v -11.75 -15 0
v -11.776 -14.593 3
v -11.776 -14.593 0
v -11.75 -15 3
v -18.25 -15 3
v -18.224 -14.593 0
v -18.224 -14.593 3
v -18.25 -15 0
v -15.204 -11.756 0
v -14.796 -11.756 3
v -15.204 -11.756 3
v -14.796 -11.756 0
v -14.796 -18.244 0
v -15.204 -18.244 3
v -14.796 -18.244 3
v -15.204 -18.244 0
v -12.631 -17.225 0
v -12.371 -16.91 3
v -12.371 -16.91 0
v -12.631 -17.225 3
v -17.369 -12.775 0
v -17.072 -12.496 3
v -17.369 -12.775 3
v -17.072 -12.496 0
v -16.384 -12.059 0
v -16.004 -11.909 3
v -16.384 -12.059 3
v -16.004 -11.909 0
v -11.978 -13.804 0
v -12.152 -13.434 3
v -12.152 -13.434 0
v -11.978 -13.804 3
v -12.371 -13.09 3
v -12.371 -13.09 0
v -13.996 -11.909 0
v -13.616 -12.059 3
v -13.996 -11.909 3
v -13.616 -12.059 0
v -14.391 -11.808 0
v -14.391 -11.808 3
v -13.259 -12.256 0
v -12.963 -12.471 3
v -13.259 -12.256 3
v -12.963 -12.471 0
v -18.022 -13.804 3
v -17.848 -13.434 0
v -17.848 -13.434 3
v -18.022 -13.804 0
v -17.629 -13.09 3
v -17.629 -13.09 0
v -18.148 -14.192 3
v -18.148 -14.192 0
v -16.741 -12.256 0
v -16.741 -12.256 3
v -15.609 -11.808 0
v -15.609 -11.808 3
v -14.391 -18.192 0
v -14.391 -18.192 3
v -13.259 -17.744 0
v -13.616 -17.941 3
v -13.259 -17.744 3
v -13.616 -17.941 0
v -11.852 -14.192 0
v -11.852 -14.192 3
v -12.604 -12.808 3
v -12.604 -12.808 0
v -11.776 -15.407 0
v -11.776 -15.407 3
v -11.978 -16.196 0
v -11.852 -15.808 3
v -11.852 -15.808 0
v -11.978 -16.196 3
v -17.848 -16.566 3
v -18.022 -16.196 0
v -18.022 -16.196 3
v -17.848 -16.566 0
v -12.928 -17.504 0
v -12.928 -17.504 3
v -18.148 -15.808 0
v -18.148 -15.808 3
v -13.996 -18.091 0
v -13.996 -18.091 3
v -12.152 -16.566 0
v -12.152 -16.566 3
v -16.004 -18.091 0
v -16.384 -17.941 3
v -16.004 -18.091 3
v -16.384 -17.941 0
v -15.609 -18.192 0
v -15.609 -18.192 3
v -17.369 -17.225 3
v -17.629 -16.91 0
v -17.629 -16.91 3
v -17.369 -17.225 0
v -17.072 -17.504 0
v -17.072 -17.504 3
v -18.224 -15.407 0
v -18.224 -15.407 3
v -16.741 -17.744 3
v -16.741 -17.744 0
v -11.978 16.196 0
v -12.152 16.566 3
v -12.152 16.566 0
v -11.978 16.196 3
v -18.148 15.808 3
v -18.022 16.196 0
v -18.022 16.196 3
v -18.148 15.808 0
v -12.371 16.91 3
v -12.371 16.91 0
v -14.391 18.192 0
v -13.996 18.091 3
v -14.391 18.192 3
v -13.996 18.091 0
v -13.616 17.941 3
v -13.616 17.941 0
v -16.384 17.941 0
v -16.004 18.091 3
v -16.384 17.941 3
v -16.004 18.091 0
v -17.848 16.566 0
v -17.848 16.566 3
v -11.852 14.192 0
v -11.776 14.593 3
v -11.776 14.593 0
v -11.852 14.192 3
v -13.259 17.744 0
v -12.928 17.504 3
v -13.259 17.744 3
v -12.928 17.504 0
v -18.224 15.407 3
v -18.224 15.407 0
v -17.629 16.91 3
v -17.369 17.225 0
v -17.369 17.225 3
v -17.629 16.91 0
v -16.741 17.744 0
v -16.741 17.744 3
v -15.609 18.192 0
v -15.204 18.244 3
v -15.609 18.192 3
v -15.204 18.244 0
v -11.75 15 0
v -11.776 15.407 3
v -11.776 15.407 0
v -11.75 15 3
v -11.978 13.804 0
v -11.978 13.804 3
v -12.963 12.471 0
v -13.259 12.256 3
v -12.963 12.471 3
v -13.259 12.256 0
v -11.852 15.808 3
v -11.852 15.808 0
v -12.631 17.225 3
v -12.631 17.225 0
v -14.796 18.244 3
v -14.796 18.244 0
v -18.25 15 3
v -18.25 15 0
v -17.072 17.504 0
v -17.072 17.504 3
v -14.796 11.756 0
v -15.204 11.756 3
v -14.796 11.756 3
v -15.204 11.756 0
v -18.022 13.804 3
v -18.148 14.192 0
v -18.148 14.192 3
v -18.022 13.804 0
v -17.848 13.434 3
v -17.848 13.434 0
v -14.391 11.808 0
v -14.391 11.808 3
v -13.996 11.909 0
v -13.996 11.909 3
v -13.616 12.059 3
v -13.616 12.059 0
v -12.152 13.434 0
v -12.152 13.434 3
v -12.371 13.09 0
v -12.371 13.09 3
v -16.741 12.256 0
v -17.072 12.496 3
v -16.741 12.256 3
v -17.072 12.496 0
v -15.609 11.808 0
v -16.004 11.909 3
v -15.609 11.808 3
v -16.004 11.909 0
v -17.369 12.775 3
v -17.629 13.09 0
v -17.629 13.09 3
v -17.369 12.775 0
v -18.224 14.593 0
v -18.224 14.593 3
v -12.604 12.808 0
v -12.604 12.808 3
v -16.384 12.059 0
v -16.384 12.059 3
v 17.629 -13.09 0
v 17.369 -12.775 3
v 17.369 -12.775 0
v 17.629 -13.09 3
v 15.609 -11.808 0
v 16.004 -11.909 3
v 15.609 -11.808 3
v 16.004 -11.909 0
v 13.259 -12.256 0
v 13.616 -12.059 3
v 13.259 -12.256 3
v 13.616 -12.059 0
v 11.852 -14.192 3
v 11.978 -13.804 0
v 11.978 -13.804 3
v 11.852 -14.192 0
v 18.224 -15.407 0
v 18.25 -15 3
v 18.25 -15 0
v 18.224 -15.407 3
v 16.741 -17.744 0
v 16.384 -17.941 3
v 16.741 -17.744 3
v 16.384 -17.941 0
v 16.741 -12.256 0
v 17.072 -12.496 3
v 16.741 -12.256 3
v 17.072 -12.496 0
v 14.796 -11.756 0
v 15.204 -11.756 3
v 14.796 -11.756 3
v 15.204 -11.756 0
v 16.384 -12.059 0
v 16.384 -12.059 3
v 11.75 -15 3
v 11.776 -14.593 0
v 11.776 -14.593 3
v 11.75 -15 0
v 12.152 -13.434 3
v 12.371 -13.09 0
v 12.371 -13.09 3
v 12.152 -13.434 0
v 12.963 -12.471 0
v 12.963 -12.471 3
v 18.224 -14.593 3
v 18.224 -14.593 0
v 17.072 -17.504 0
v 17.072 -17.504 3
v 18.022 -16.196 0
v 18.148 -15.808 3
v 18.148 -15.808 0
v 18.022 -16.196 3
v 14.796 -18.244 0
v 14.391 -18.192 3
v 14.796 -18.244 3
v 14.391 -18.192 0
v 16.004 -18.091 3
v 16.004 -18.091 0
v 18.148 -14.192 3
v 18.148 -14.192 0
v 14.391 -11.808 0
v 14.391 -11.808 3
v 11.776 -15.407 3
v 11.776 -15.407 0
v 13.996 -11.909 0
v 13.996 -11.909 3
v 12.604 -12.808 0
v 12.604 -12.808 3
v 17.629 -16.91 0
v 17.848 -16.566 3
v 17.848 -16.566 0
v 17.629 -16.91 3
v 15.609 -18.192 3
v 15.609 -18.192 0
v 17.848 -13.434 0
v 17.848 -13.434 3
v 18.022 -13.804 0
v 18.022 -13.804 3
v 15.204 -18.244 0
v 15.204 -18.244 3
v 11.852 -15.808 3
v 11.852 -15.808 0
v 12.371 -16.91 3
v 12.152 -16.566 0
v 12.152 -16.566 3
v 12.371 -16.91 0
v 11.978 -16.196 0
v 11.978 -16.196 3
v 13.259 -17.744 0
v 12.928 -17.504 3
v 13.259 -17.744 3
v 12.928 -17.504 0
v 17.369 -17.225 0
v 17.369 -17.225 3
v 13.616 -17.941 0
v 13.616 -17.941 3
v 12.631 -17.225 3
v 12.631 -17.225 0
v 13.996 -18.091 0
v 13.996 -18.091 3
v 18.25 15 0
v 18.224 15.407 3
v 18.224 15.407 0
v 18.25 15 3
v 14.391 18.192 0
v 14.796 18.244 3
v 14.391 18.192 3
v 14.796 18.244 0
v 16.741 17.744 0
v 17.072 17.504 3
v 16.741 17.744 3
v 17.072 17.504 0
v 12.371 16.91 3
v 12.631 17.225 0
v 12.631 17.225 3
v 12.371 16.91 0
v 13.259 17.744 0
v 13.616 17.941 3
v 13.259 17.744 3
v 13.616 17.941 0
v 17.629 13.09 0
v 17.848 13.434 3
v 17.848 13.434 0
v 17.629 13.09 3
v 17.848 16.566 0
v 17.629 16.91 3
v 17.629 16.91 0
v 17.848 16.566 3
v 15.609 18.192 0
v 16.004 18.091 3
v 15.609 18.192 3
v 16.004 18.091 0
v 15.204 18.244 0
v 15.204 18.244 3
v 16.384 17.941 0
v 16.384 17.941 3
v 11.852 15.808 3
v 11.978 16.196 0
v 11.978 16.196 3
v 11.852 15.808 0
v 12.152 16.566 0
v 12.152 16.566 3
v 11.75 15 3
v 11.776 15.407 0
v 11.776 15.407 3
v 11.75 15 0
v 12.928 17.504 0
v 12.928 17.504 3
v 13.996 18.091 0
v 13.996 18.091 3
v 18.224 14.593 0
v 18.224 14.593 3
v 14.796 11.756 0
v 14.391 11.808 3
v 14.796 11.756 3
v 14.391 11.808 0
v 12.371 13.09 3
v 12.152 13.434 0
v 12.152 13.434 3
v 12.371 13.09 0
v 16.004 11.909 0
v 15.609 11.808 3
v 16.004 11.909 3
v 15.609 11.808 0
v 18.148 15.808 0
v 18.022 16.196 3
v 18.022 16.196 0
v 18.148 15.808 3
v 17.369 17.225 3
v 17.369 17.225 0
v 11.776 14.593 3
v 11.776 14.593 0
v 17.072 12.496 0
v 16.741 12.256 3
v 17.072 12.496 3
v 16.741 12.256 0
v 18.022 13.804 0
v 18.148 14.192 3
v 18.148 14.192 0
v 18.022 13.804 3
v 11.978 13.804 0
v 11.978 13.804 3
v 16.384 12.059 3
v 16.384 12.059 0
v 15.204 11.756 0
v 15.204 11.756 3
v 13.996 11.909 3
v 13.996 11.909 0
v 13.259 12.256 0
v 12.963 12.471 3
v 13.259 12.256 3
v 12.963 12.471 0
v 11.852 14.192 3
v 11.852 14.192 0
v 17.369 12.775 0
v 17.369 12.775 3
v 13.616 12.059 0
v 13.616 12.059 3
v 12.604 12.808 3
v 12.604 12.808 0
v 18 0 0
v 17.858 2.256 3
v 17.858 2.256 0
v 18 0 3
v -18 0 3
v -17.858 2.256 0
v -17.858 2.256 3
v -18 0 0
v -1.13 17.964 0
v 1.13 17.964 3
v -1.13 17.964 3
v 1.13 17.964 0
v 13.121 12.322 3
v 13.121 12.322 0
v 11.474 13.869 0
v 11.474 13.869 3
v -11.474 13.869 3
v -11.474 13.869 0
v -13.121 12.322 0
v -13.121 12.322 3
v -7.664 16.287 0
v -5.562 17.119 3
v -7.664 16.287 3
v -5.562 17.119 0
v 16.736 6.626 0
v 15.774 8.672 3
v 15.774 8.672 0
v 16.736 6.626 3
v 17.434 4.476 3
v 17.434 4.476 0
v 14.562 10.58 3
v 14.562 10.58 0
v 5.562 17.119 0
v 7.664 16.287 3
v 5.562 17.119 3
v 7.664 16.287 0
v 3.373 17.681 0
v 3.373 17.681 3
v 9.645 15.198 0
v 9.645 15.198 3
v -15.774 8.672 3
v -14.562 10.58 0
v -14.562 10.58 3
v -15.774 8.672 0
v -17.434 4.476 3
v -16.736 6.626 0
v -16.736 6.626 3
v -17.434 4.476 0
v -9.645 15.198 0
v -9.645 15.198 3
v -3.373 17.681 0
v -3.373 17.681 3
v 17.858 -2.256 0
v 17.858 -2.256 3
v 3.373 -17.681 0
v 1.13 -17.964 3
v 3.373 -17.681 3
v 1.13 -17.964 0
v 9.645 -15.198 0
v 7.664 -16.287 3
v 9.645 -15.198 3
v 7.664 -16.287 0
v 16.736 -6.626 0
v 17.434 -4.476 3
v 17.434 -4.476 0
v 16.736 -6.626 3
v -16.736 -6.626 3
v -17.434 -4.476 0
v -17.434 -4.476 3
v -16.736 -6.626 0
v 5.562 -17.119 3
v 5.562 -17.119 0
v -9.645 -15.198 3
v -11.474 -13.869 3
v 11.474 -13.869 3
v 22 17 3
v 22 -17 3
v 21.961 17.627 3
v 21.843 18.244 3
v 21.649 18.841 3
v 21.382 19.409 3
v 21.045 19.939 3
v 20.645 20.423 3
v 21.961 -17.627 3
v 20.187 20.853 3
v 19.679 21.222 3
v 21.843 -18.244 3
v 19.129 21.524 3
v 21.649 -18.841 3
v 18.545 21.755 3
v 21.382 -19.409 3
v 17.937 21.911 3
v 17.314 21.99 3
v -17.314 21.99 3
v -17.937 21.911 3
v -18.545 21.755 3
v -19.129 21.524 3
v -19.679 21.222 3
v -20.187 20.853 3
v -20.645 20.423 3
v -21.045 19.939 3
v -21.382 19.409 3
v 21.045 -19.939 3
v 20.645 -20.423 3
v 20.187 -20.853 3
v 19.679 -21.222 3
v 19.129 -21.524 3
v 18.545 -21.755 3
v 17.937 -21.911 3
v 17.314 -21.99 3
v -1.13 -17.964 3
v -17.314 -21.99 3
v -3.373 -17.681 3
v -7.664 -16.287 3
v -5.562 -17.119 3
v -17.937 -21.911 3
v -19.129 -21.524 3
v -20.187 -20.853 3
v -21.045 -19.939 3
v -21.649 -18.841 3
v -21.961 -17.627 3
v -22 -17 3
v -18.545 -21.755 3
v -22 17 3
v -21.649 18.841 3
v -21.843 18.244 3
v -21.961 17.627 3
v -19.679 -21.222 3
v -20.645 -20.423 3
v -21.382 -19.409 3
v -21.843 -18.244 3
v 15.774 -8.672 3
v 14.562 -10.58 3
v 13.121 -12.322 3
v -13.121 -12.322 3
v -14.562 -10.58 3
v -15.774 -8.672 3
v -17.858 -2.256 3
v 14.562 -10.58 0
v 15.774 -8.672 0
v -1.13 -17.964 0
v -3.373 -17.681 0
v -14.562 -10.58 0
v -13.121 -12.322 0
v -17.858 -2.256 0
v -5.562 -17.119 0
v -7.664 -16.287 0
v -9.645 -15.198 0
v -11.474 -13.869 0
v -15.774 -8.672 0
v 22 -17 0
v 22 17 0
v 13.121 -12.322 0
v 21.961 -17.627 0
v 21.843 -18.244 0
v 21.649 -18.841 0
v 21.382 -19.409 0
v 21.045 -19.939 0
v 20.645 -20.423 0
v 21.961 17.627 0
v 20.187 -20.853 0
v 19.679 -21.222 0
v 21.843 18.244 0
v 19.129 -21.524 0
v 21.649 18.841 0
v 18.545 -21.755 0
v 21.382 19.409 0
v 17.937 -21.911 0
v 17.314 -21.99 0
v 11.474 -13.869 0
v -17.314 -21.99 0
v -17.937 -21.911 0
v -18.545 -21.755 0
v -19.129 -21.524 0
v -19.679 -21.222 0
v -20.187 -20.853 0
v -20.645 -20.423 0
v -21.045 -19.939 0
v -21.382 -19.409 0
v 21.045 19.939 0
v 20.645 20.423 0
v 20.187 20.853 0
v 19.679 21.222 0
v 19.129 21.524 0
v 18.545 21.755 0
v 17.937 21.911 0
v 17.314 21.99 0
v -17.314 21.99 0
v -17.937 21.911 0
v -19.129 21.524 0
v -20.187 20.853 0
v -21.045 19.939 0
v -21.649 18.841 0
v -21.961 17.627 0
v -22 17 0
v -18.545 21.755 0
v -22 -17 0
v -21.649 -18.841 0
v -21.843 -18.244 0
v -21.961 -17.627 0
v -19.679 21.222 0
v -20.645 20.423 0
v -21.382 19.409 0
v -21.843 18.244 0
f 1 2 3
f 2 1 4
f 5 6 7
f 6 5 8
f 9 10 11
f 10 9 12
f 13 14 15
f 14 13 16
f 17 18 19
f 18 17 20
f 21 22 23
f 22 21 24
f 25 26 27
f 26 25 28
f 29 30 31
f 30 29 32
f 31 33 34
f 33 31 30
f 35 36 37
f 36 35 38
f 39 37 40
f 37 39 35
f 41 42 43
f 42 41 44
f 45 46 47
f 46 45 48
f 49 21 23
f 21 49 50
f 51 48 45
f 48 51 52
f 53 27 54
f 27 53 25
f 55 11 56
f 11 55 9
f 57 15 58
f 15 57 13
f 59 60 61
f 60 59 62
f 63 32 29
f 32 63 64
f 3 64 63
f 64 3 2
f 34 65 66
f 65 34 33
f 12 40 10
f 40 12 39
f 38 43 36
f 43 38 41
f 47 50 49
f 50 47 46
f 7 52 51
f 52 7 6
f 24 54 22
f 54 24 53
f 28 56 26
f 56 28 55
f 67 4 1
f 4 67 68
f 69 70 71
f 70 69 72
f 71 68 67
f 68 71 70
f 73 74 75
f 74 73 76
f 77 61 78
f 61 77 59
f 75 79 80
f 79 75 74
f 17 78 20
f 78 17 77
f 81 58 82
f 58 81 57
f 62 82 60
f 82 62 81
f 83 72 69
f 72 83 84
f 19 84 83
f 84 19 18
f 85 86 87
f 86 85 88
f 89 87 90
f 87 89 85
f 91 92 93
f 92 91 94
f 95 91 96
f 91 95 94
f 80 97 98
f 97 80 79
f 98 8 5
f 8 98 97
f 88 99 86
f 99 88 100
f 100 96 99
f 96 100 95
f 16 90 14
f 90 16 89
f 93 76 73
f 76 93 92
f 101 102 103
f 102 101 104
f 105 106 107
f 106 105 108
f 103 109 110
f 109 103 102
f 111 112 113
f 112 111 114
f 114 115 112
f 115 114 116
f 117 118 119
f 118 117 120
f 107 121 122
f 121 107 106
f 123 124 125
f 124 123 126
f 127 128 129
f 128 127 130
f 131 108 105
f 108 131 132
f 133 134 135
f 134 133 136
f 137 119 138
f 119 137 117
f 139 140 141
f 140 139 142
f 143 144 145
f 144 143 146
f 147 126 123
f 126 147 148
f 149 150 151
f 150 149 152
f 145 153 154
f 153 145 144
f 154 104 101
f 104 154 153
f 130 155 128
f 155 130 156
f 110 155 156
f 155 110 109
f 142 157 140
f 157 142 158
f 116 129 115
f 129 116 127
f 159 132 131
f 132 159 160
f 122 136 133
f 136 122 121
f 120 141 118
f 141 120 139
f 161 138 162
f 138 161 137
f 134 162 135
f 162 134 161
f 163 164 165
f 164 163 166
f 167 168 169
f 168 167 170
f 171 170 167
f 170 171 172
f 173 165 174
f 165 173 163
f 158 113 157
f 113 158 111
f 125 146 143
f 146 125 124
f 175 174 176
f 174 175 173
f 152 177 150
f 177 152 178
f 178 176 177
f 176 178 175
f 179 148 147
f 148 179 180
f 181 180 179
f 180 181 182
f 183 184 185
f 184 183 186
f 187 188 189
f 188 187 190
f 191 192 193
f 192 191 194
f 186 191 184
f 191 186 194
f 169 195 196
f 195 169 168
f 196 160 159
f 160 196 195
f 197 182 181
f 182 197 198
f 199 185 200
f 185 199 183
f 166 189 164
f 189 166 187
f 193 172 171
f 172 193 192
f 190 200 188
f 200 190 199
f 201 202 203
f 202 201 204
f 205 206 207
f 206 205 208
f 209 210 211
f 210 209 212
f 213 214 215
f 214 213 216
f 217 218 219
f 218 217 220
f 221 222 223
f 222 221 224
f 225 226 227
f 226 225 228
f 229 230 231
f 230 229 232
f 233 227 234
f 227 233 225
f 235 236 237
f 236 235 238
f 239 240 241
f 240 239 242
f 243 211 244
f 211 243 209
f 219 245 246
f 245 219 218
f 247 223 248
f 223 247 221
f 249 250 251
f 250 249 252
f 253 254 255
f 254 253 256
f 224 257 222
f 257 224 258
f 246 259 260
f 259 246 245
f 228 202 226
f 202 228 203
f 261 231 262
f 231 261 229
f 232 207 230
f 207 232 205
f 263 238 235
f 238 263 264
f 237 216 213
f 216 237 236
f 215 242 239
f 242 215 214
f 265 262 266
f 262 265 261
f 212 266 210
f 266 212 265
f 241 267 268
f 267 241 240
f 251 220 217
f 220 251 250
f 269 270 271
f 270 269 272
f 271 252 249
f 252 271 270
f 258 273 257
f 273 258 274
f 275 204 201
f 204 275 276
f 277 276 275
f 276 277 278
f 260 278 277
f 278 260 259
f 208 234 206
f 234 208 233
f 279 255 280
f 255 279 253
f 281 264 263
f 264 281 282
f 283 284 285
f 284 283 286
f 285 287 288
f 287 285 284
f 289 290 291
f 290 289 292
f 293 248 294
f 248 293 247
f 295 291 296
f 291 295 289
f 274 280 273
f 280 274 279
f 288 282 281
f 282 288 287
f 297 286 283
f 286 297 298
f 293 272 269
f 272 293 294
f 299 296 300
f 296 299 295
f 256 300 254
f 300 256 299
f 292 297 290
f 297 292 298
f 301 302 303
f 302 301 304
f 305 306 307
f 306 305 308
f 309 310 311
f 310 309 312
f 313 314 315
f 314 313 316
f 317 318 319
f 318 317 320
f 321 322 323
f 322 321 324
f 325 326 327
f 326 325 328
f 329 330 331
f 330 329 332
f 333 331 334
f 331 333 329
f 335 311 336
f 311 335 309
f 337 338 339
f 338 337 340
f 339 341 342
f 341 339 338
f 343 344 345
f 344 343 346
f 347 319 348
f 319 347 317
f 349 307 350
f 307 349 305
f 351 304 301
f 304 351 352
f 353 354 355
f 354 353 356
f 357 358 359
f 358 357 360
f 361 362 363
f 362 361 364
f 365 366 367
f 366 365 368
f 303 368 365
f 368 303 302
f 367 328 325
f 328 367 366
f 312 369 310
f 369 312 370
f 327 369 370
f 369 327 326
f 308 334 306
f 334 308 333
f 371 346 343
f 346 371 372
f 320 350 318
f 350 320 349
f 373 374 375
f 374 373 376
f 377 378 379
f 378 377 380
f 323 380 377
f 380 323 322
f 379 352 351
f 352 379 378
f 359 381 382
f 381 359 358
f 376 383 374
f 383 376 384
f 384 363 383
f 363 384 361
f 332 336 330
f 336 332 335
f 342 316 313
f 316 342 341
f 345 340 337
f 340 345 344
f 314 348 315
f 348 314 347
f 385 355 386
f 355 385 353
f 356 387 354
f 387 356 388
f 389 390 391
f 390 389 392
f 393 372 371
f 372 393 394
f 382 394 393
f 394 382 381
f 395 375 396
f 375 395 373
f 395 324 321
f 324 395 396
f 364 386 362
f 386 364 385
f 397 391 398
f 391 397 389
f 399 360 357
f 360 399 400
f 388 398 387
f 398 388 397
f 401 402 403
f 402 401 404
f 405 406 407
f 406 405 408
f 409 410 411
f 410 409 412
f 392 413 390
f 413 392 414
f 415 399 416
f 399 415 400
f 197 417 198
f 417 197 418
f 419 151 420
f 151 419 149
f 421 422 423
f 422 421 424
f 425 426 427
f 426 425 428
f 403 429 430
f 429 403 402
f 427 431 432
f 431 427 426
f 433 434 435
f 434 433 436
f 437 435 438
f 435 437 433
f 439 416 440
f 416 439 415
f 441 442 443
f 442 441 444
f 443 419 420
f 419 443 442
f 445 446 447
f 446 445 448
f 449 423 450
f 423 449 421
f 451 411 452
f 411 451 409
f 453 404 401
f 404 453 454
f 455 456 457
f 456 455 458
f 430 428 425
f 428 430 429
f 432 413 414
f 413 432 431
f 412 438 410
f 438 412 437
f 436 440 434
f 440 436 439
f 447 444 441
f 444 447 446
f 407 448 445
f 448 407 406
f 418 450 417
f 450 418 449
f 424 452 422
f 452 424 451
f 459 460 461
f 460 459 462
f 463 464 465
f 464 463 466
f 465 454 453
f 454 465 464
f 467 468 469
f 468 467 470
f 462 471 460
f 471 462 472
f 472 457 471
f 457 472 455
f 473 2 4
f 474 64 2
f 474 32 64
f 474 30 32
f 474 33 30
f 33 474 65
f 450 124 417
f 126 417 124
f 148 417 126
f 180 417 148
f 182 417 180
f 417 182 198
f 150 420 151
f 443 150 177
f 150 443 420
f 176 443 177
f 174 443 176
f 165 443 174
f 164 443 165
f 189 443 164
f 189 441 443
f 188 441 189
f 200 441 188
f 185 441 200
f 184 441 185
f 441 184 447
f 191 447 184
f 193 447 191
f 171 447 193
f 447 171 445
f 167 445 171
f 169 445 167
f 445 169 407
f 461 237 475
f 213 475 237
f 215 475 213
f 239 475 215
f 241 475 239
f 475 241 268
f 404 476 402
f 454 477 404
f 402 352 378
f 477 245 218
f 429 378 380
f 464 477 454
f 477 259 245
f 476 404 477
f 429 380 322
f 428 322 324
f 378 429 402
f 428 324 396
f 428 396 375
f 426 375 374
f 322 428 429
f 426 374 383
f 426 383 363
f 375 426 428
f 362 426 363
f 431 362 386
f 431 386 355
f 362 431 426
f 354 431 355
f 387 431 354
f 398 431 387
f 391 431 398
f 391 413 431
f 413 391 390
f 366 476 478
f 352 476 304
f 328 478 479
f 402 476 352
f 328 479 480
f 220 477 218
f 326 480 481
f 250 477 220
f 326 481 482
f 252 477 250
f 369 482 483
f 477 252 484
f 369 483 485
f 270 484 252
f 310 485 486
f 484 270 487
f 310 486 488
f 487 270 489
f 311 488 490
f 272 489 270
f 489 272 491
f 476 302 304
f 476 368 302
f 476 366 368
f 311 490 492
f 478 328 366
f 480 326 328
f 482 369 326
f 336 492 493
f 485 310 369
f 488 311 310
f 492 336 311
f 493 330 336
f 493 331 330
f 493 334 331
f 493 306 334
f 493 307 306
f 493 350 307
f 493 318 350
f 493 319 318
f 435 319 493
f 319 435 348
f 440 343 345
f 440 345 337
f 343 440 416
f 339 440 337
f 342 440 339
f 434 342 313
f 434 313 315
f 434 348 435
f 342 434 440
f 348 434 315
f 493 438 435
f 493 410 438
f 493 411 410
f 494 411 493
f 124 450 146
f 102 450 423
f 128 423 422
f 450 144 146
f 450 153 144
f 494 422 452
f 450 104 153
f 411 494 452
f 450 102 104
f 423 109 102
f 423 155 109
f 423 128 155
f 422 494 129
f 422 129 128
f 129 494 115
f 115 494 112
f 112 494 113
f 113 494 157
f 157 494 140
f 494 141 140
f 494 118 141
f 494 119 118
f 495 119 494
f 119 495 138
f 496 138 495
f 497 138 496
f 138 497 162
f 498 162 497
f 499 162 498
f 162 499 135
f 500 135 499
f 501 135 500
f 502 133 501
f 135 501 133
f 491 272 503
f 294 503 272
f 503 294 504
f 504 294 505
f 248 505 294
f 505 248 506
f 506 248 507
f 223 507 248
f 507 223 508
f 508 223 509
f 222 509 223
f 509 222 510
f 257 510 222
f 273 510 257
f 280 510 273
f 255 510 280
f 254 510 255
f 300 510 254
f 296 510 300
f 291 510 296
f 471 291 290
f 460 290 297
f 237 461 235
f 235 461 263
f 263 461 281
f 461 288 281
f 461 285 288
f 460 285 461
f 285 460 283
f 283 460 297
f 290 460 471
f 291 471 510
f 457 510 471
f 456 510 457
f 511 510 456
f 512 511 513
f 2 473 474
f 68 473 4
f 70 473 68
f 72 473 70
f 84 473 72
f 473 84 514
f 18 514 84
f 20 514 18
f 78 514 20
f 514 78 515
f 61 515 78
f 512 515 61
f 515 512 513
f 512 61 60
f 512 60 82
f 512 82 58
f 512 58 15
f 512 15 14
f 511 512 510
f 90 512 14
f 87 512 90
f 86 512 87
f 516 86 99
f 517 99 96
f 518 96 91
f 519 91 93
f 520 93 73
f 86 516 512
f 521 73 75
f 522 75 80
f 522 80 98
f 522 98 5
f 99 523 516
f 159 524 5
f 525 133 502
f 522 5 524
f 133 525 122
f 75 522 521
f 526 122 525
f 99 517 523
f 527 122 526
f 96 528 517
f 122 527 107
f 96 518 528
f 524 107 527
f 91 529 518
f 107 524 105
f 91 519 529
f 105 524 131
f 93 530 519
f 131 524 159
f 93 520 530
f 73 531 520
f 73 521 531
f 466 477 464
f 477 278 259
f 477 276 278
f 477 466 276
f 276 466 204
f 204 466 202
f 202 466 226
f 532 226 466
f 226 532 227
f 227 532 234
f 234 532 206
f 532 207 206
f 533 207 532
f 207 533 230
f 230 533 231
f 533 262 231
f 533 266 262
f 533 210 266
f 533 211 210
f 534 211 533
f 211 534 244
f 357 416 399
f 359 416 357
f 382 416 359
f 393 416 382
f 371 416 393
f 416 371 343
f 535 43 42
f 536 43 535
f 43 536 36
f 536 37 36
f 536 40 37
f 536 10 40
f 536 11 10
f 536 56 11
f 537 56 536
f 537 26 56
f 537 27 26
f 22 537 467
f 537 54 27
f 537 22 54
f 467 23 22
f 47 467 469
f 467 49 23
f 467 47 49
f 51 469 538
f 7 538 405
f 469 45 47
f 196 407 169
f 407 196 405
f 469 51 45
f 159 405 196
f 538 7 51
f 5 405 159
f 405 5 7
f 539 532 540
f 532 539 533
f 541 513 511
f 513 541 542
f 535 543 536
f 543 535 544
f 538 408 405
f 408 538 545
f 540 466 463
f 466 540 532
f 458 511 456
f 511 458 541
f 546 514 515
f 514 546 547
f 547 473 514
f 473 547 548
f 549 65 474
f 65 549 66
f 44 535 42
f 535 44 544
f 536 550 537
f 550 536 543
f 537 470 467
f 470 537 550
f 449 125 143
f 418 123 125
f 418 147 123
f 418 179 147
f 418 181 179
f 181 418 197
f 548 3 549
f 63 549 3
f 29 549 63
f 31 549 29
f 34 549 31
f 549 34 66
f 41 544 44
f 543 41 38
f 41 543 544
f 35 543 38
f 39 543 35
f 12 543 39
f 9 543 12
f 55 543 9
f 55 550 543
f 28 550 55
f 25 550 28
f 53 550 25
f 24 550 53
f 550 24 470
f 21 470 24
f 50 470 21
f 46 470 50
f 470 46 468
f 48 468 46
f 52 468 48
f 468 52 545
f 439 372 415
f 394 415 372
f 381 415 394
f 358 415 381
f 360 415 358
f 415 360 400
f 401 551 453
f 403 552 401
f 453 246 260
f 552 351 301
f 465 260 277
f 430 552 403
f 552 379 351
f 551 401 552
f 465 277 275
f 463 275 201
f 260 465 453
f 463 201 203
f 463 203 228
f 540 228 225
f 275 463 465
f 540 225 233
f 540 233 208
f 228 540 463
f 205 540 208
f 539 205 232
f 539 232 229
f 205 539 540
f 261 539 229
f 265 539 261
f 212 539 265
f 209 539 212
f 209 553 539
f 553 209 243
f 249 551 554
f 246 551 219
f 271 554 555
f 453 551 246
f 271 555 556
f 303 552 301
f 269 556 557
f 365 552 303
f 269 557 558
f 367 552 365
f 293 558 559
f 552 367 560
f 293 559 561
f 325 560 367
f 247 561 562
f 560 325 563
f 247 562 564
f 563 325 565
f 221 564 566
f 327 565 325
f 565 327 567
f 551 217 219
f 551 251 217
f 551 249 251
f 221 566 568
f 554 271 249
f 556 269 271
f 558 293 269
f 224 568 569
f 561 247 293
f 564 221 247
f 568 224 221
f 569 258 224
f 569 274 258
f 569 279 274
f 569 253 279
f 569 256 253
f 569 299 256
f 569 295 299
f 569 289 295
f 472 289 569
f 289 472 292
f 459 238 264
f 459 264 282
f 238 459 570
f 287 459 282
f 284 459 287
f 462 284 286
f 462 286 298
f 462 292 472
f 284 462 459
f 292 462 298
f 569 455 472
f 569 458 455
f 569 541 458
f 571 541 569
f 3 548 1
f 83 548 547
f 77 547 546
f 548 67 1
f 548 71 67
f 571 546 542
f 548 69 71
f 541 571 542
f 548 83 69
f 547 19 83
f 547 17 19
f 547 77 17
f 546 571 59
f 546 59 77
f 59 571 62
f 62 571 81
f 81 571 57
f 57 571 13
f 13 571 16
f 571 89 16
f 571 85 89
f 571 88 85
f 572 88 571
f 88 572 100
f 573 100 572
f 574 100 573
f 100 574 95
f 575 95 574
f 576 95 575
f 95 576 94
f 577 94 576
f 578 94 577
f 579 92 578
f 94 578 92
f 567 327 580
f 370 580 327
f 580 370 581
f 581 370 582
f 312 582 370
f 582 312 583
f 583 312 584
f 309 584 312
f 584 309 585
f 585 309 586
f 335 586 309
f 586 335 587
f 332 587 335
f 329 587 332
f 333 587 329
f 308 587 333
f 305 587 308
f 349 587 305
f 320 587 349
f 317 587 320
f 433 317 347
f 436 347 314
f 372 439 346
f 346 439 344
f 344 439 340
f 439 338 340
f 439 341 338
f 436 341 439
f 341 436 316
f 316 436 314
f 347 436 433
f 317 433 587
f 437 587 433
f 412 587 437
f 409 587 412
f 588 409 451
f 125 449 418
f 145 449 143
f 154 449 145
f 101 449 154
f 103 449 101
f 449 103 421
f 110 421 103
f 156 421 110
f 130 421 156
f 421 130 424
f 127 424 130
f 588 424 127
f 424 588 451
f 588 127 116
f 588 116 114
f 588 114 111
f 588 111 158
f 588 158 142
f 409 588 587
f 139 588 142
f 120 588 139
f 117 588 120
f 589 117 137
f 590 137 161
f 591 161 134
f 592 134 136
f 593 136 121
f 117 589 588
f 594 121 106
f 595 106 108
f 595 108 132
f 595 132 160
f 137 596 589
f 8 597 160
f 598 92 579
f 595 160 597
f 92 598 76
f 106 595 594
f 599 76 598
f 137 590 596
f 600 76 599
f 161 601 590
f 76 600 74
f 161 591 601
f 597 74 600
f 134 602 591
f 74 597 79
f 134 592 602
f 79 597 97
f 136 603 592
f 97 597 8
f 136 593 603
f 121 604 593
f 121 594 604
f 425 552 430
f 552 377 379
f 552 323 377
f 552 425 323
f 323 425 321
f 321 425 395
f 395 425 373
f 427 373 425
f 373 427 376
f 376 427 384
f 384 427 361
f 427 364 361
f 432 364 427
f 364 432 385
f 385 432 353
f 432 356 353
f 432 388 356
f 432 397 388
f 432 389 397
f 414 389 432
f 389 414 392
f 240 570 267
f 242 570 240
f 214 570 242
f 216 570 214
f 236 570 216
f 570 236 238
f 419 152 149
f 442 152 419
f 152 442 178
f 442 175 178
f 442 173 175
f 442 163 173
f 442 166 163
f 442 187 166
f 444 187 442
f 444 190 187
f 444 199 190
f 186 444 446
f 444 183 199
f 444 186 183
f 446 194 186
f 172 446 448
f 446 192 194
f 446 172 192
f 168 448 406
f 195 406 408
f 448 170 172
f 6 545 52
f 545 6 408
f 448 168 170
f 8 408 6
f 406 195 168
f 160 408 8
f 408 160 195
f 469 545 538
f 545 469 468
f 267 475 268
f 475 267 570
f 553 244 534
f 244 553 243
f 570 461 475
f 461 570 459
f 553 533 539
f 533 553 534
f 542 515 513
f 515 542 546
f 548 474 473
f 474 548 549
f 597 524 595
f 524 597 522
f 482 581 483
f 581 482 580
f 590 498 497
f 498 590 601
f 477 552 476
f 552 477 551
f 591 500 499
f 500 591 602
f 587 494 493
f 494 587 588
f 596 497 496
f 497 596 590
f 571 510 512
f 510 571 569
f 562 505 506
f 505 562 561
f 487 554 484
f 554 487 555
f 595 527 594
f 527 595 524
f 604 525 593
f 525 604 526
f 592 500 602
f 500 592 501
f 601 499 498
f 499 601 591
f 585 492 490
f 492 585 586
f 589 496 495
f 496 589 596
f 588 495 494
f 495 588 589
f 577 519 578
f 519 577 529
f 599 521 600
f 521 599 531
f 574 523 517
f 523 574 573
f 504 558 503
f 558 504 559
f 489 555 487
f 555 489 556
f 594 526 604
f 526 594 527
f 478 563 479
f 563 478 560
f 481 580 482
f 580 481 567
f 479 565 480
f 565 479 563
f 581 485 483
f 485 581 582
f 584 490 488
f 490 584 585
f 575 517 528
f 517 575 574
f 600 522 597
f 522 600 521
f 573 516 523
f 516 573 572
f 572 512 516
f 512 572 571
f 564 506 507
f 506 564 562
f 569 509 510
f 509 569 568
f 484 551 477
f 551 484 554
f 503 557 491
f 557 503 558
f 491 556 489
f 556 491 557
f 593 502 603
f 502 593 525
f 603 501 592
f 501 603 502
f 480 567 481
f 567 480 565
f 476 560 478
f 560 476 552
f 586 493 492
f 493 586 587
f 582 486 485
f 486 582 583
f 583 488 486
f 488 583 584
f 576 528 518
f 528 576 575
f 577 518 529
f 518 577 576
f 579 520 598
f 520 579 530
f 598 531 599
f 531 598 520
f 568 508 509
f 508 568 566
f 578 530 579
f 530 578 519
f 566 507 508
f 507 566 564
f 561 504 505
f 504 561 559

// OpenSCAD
$fn = 50;


difference() {
	union() {
		hull() {
			translate(v = [-17.0000000000, 17.0000000000, 0]) {
				cylinder(h = 3, r = 5);
			}
			translate(v = [17.0000000000, 17.0000000000, 0]) {
				cylinder(h = 3, r = 5);
			}
			translate(v = [-17.0000000000, -17.0000000000, 0]) {
				cylinder(h = 3, r = 5);
			}
			translate(v = [17.0000000000, -17.0000000000, 0]) {
				cylinder(h = 3, r = 5);
			}
		}
	}
	union() {
		#translate(v = [-15.0000000000, -15.0000000000, -100.0000000000]) {
			cylinder(h = 200, r = 3.2500000000);
		}
		#translate(v = [-15.0000000000, 15.0000000000, -100.0000000000]) {
			cylinder(h = 200, r = 3.2500000000);
		}
		#translate(v = [15.0000000000, -15.0000000000, -100.0000000000]) {
			cylinder(h = 200, r = 3.2500000000);
		}
		#translate(v = [15.0000000000, 15.0000000000, -100.0000000000]) {
			cylinder(h = 200, r = 3.2500000000);
		}
		#cylinder(h = 3, r = 18.0000000000);
	}
}
